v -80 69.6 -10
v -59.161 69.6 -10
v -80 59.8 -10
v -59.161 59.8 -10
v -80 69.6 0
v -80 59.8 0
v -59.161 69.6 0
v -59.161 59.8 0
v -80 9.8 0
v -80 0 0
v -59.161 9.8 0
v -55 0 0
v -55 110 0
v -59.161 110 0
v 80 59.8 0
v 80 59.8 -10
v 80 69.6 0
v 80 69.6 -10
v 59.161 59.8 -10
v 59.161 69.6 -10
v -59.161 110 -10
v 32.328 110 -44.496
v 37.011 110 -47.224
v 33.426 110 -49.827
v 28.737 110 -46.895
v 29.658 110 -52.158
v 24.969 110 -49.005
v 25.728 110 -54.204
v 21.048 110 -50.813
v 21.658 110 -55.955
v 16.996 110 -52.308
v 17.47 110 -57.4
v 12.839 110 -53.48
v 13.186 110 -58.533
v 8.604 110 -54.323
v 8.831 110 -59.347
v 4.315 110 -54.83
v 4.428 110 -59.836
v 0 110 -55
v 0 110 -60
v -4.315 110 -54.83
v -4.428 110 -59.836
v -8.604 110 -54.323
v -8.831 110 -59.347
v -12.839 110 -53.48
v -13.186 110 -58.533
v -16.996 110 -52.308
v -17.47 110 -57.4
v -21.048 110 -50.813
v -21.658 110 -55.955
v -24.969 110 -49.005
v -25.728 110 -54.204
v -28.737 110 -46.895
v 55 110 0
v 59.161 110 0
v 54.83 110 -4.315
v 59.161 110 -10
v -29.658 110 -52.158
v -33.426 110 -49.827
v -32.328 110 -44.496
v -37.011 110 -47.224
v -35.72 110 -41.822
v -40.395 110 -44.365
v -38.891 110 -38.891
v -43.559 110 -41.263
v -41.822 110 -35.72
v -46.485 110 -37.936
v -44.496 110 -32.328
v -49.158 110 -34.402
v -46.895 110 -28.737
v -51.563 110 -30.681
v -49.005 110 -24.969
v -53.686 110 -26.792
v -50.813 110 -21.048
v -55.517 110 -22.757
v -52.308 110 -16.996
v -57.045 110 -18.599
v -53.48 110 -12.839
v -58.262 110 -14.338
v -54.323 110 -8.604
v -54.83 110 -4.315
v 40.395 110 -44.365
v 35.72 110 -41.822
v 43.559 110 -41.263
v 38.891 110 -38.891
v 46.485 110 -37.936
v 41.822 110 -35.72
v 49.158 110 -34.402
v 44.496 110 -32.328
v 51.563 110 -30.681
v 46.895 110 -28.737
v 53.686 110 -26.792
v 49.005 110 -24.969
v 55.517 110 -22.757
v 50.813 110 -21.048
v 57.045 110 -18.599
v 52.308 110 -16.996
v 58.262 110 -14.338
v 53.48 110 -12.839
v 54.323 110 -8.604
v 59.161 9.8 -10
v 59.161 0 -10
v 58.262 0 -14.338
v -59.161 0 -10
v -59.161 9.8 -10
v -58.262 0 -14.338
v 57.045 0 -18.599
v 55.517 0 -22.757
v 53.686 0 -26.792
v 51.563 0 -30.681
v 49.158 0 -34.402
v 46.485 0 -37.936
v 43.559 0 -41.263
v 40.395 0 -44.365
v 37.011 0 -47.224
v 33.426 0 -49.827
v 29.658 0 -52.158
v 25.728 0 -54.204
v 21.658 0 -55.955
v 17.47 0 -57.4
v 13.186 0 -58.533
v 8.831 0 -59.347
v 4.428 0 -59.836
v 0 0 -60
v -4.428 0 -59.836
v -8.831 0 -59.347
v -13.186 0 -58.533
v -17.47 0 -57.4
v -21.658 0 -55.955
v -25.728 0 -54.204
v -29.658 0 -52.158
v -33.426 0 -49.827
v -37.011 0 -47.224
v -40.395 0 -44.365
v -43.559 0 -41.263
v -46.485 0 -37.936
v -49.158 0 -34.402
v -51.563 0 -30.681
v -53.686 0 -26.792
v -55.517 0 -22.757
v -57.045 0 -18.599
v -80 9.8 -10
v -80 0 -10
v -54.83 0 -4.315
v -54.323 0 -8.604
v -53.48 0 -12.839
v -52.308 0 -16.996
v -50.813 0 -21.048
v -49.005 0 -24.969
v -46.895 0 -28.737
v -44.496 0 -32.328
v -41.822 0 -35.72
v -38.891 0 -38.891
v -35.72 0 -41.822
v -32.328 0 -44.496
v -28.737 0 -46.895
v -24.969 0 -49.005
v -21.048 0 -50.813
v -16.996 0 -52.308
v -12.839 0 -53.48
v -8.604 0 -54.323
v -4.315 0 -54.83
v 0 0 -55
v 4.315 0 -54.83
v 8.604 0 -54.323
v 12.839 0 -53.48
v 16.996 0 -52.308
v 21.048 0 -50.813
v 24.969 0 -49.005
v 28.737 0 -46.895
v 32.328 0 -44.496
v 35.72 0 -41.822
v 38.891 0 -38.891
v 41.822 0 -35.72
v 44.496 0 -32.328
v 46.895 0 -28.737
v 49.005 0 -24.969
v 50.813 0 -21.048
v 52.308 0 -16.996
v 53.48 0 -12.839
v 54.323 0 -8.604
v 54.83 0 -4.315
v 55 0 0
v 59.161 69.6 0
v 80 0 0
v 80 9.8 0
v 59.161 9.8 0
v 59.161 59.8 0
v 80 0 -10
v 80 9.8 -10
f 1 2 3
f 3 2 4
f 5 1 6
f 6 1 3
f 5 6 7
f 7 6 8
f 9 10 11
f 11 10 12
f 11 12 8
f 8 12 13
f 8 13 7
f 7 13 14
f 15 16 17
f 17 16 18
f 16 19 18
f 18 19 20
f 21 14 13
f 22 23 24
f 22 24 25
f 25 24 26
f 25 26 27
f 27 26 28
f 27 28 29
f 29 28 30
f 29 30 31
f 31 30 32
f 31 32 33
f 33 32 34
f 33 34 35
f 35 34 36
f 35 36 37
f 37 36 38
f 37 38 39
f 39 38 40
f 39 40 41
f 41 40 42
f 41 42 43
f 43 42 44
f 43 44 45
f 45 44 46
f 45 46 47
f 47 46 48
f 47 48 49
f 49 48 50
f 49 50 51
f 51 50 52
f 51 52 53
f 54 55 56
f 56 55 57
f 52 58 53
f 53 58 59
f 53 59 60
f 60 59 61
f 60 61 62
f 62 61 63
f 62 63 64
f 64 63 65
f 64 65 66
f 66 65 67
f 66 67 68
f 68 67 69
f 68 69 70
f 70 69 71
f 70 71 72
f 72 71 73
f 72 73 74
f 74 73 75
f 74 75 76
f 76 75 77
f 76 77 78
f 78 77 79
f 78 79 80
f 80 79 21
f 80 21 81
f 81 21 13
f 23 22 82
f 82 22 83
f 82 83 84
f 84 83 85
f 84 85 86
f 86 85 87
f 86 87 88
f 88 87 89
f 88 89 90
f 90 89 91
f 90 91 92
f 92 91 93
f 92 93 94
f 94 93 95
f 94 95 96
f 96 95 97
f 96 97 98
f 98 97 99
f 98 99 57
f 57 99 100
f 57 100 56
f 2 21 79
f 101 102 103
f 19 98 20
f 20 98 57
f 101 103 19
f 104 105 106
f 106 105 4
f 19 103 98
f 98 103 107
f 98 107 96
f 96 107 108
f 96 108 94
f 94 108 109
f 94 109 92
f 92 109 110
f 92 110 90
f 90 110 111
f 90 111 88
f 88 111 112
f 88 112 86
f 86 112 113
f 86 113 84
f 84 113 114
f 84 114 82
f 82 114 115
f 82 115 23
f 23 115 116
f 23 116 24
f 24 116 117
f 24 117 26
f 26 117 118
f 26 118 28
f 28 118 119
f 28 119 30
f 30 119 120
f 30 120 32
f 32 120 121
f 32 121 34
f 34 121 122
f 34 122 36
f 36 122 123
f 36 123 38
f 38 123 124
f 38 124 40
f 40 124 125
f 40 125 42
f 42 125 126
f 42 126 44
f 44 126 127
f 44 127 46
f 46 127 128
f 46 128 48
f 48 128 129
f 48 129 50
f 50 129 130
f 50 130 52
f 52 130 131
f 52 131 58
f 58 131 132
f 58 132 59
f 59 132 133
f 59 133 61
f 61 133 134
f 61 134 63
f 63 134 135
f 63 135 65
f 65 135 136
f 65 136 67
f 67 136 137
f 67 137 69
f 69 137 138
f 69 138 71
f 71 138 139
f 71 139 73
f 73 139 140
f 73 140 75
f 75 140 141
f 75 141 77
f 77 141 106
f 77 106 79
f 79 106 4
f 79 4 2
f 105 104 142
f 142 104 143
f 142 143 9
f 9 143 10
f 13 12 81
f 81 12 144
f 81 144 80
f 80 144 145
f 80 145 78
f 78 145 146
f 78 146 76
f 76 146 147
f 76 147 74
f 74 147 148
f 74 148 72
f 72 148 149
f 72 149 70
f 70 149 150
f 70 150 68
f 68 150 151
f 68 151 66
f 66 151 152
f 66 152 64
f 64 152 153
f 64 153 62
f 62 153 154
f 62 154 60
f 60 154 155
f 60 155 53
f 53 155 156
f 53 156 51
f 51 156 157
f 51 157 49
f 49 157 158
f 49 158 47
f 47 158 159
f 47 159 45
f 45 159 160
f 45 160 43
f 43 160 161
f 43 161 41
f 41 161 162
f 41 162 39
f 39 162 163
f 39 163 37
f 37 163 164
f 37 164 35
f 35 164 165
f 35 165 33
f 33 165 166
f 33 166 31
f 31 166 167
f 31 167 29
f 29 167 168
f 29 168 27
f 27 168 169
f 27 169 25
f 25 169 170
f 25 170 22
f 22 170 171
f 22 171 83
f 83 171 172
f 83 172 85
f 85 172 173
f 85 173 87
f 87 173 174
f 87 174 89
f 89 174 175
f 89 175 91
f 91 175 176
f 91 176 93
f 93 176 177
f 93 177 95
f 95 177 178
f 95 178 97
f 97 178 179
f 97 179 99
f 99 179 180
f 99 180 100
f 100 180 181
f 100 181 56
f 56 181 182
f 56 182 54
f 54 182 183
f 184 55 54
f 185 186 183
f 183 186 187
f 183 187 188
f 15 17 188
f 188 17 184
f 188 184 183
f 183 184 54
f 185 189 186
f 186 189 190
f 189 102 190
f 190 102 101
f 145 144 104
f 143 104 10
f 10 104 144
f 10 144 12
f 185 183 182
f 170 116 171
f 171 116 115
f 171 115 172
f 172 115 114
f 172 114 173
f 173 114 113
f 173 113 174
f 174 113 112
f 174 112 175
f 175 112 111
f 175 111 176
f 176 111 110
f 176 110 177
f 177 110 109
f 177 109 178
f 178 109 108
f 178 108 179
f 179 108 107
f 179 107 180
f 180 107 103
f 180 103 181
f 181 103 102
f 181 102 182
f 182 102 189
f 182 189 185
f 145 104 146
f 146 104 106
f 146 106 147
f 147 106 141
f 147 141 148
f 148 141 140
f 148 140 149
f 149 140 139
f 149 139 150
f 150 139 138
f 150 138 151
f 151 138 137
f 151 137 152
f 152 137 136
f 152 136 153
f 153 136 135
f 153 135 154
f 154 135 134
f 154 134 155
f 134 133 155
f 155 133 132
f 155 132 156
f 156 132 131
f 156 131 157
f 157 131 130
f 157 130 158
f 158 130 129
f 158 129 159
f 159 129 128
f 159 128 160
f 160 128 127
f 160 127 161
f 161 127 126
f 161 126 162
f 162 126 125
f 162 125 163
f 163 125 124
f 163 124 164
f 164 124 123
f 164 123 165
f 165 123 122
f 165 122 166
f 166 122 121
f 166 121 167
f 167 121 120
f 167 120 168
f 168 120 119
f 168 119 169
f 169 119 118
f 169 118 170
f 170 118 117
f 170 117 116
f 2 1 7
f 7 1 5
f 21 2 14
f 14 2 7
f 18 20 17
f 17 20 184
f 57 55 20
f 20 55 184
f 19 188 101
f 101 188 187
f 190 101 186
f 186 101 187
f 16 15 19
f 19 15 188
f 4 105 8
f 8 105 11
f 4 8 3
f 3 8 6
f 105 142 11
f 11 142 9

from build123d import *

# Parameters (mm, degrees)
BOSS_EXTRUDE1_DEPTH = 110
SKETCH3_W           = 20.839202169
SKETCH3_H           = 50
SKETCH3_H_2         = 40.4
CUT_EXTRUDE1_DEPTH  = 110


with BuildPart() as part:
    # Sketch1 → Boss-Extrude1 (new body)
    with BuildSketch(Plane(origin=(0, 0, 0), x_dir=(1, 0, 0), z_dir=(0, 1, 0))):
        with BuildLine():
            ThreePointArc((-55, 0), (0, 55), (55, 0))
            Line((55, 0), (55, 10))
            Line((55, 10), (59.160797831, 10))
            ThreePointArc((59.160797831, 10), (0, 60), (-59.160797831, 10))
            Line((-59.160797831, 10), (-55, 10))
            Line((-55, 10), (-55, 0))
        make_face()
        with BuildLine():
            Line((-60, 0), (-55, 0))
            Line((-55, 0), (-55, 10))
            Line((-55, 10), (-59.160797831, 10))
            ThreePointArc((-59.160797831, 10), (-59.789831367, 5.017575617), (-60, 0))
        make_face()
        with BuildLine():
            ThreePointArc((-60, 0), (-59.789831367, 5.017575617), (-59.160797831, 10))
            Line((-59.160797831, 10), (-80, 10))
            Line((-80, 10), (-80, 0))
            Line((-80, 0), (-60, 0))
        make_face()
        with BuildLine():
            Line((60, 0), (80, 0))
            Line((80, 0), (80, 10))
            Line((80, 10), (59.160797831, 10))
            ThreePointArc((59.160797831, 10), (59.789831367, 5.017575617), (60, 0))
        make_face()
        with BuildLine():
            Line((55, 0), (60, 0))
            ThreePointArc((60, 0), (59.789831367, 5.017575617), (59.160797831, 10))
            Line((59.160797831, 10), (55, 10))
            Line((55, 10), (55, 0))
        make_face()
    extrude(amount=BOSS_EXTRUDE1_DEPTH)

    # Sketch3 → Cut-Extrude1 (cut)
    with BuildSketch(Plane(origin=(0, 0, -10), x_dir=(-1, 0, 0), z_dir=(0, 0, -1))):
        with Locations((-69.580398915, 34.8)):
            Rectangle(SKETCH3_W, SKETCH3_H)
        with Locations((69.580398915, 34.8)):
            Rectangle(SKETCH3_W, SKETCH3_H)
        with Locations((-69.580398915, 89.8)):
            Rectangle(SKETCH3_W, SKETCH3_H_2)
        with Locations((69.580398915, 89.8)):
            Rectangle(SKETCH3_W, SKETCH3_H_2)
    extrude(amount=-CUT_EXTRUDE1_DEPTH, mode=Mode.SUBTRACT)


solid = part.part
